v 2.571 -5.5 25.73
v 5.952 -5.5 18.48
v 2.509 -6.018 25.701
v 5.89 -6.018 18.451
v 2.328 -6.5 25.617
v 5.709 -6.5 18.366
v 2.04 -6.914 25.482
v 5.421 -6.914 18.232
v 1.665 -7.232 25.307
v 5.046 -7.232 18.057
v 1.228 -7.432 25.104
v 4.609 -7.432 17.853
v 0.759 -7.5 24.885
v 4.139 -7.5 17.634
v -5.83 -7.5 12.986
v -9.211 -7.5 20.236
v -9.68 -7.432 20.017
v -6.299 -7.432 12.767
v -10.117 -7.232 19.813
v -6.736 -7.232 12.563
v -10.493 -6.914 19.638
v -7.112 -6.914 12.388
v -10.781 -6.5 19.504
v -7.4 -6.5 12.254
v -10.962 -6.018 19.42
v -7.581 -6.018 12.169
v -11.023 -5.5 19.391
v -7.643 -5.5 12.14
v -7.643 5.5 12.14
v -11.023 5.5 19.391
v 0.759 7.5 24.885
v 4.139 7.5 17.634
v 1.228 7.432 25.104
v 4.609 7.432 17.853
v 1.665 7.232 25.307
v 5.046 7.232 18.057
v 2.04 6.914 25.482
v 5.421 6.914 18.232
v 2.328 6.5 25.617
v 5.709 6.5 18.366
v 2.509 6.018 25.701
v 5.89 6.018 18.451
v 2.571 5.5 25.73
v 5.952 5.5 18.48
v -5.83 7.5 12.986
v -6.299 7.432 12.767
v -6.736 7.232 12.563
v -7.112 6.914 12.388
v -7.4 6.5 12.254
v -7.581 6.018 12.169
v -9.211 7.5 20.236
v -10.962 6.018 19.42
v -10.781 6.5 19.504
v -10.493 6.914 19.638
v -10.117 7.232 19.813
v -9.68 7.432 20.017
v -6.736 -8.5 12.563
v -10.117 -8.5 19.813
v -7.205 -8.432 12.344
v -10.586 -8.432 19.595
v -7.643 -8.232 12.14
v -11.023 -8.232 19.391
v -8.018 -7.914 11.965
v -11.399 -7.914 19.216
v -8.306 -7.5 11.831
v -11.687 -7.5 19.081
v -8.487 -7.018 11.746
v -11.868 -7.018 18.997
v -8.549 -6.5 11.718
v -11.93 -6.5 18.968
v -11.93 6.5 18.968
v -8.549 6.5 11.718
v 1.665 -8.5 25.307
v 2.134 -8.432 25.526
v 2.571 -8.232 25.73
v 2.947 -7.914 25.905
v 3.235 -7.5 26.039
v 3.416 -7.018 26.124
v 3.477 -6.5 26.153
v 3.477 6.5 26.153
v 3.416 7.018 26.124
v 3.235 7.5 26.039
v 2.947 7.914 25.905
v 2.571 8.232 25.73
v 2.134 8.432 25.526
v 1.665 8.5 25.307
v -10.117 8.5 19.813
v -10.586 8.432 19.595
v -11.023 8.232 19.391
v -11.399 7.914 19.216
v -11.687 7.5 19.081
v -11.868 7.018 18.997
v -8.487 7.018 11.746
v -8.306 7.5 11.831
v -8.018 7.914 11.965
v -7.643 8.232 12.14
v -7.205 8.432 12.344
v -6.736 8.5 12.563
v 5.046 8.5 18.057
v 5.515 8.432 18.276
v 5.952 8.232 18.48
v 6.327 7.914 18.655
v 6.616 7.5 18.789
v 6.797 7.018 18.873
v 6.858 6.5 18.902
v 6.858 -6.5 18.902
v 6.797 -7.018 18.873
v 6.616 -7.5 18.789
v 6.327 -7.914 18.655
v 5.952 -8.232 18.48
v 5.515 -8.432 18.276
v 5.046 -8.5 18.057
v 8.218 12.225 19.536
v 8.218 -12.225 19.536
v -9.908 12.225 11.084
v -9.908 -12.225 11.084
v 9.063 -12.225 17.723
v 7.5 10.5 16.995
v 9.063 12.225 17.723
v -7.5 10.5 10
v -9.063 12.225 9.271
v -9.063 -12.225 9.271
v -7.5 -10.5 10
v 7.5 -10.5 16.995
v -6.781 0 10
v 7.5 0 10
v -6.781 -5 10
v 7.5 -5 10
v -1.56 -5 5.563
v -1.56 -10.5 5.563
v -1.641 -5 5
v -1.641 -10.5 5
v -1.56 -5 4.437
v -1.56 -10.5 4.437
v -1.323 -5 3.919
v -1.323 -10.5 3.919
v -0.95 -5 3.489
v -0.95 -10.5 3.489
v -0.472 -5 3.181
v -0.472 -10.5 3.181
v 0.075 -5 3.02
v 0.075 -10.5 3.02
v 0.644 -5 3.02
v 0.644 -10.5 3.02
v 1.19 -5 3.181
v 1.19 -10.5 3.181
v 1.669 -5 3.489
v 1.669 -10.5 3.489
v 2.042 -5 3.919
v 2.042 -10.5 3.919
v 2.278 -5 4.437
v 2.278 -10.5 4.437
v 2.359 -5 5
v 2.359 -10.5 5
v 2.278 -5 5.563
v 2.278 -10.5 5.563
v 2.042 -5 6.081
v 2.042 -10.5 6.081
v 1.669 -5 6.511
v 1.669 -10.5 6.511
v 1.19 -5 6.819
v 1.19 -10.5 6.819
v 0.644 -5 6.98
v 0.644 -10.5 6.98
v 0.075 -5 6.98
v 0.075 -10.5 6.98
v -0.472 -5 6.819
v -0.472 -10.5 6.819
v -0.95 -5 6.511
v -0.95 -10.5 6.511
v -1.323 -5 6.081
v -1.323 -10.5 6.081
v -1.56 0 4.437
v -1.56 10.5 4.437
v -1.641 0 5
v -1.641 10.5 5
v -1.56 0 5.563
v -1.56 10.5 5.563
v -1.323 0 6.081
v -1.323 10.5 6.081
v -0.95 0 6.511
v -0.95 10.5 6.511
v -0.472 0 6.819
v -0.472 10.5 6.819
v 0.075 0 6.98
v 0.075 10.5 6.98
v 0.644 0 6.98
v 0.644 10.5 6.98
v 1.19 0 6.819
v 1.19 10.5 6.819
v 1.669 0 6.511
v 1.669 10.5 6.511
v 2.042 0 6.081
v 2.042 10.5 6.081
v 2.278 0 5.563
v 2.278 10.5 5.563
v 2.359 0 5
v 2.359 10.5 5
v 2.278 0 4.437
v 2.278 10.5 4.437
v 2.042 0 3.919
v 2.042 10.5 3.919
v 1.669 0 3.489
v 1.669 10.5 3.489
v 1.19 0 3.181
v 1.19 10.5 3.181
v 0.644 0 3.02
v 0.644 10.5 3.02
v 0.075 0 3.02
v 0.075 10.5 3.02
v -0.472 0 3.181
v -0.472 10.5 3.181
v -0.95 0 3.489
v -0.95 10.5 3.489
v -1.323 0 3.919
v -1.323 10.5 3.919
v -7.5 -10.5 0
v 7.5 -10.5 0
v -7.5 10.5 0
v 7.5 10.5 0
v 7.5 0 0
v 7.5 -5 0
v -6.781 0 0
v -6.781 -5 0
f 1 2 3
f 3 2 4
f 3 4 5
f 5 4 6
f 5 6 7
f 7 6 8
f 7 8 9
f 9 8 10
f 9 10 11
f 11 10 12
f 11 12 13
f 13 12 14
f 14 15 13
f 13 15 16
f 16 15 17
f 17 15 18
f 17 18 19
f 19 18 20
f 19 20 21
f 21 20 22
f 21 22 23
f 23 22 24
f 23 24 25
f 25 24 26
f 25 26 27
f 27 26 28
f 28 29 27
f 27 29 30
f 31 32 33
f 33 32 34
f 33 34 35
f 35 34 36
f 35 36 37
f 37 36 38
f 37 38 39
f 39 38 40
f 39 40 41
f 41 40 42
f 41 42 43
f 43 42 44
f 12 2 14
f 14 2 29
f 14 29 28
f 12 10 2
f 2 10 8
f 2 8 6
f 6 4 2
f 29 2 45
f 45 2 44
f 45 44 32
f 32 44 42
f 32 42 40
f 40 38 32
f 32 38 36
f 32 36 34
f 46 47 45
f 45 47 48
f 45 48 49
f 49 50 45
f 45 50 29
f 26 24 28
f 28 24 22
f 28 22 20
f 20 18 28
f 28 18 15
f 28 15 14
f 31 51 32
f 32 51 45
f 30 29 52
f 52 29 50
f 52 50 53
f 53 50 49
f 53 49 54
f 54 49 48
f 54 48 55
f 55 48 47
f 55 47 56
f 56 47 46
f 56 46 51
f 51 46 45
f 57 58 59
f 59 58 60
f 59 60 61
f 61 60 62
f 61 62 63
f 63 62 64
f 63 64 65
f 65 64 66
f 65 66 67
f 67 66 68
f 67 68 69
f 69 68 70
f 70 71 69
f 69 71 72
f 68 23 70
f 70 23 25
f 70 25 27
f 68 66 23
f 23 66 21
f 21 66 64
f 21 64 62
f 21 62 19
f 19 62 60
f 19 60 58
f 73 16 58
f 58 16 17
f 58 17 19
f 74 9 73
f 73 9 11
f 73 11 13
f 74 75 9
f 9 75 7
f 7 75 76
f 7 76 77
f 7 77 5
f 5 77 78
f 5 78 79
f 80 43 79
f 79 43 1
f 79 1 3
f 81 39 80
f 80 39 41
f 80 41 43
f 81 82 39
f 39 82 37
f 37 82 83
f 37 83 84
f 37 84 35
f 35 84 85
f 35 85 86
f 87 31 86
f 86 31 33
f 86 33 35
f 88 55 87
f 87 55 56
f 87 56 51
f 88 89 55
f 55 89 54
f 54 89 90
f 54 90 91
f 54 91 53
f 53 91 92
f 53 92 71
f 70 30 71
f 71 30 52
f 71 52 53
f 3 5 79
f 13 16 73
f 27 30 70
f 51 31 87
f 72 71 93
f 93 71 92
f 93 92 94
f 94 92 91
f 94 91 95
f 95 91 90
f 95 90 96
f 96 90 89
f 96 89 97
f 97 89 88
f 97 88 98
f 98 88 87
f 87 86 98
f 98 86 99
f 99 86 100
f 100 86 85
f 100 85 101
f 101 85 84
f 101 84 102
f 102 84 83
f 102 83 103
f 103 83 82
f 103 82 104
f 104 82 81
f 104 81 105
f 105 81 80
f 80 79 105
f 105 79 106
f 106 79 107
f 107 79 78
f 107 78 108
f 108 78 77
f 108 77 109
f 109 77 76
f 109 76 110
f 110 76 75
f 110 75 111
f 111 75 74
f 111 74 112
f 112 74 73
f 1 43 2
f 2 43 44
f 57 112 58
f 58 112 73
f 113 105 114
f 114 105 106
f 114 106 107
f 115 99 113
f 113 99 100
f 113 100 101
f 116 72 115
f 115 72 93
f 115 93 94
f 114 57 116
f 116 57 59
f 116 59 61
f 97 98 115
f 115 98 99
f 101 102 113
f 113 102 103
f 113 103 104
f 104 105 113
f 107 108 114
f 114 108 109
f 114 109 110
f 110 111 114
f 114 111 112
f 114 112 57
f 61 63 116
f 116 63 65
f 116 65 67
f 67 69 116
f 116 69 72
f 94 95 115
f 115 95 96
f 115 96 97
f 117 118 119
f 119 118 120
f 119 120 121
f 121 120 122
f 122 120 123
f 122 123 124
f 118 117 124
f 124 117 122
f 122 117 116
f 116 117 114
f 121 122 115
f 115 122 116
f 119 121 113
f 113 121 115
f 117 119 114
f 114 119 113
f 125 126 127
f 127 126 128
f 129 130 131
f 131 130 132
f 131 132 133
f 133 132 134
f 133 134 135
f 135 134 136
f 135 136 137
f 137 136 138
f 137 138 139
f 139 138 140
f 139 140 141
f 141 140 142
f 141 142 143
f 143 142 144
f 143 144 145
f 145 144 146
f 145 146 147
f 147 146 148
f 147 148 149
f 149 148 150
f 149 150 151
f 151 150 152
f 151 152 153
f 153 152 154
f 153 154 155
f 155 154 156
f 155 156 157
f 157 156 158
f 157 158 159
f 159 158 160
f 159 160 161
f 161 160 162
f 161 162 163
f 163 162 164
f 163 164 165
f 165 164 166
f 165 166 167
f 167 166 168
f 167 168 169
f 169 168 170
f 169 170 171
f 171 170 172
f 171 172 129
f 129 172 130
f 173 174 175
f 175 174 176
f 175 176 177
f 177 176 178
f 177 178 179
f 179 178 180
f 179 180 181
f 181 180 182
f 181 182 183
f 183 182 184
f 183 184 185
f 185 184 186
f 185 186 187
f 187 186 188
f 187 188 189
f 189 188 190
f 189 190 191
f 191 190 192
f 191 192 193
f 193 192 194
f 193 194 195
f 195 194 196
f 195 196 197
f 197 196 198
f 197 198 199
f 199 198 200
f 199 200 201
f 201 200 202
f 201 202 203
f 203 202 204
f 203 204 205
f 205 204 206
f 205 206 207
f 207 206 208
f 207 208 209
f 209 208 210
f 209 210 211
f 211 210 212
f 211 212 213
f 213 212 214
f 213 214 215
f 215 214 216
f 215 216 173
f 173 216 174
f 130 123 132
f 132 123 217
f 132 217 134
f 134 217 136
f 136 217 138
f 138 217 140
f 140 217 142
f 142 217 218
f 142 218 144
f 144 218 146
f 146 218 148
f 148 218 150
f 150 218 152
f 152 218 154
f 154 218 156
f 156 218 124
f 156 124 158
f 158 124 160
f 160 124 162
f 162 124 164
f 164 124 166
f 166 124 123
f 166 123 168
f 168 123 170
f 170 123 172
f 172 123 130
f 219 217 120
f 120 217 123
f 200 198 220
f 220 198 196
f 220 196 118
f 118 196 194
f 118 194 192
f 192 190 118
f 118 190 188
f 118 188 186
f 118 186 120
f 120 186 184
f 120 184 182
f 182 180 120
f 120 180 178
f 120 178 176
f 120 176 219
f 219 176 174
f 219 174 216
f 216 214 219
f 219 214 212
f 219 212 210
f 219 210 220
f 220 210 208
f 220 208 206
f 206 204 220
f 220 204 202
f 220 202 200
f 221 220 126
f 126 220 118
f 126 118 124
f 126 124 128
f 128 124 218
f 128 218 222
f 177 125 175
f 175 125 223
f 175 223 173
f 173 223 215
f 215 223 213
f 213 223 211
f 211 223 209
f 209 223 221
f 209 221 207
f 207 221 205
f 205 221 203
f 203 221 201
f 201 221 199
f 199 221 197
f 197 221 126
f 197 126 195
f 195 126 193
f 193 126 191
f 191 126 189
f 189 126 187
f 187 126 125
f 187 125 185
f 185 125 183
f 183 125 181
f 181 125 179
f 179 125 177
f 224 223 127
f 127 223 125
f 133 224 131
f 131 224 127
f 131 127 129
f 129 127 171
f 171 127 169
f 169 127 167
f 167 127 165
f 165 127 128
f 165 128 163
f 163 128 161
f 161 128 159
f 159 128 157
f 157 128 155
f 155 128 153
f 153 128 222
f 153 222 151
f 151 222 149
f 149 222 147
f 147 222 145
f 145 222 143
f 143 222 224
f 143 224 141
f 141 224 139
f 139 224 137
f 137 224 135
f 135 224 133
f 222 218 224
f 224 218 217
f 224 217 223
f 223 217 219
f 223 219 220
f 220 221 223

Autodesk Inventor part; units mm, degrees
ref_plane "YZ Plane" through (0, 0, 0) normal (1, 0, 0) x (0, 1, 0)
ref_plane "XZ Plane" through (0, 0, 0) normal (0, 1, 0) x (-1, 0, 0)
ref_plane "XY Plane" through (0, 0, 0) normal (0, 0, 1) x (1, 0, 0)
sketch "Эскиз1" plane through (0, 0, 0) normal (0, 0, 1) x (1, 0, 0)
  line L0 (7.5, -5) -> (7.5, 0) projected
  line L1 (5.0577, -5) -> (7.5, -5) projected
  line L2 (5.0577, -5) -> (-4.3392, -5) projected
  line L3 (-6.7815, -5) -> (-4.3392, -5) projected
  line L4 (-6.7815, -5) -> (-6.7815, 0) projected
  line L5 (-6.7815, 0) -> (-4.3392, 0) projected
  line L6 (5.0577, 0) -> (-4.3392, 0) projected
  line L7 (5.0577, 0) -> (7.5, 0) projected
  line L8 (7.5, -10.5) -> (-7.5, -10.5) projected
  line L9 (7.5, 0) -> (-6.7815, 0) projected
  line L10 (7.5, 10.5) -> (7.5, 0) projected
  line L11 (-7.5, 10.5) -> (7.5, 10.5) projected
  line L12 (-7.5, -10.5) -> (-7.5, 10.5) projected
  line L13 (7.5, -10.5) -> (-7.5, -10.5) projected
  line L14 (7.5, -5) -> (7.5, -10.5) projected
  line L15 (7.5, -5) -> (-6.7815, -5) projected
  line L16 (-6.7815, -5) -> (-6.7815, 0) projected
  point P0 (0, 0)
extrude "Выдавливание1" add sketch "Эскиз1" along normal blind 10 contours L14 L8 L12 L11 L10 L7 L6 L5 L4 L3 L2 L1
sketch "Эскиз2" plane through (-7.5, 10.5, 0) normal (0, 1, 0) x (1, 0, 0)
  circle A0 centre (7.8593, -5) radius 2 projected
  point P0 (7.5, 0)
extrude "Выдавливание2" cut sketch "Эскиз2" against normal through all
sketch "Эскиз3" plane through (-7.5, 10.5, 0) normal (0, 1, 0) x (1, 0, 0)
  line L0 (15, -10) -> (0, -10) projected
  line L1 (15, -10) -> (15, -16.9946)
  line L2 (15, -16.9946) -> (0, -10)
  point P0 (7.5, 0)
  dimension "d5" = 25
extrude "Выдавливание3" add sketch "Эскиз3" against normal up to surface (21 mm away)
sketch "Эскиз4" plane through (7.5, -10.5, 16.9946) normal (-0.4226183, 0, 0.9063078) x (0.9063078, 0, 0.4226183)
  line L0 (-16.5507, 0) -> (0, 0) projected
  line L1 (0, 21) -> (0, 0) projected
  line L2 (-16.5507, 21) -> (0, 21) projected
  line L3 (-16.5507, 21) -> (-16.5507, 0) projected
  line L4 (-18.2753, -1.7247) -> (1.7247, -1.7247)
  line L5 (1.7247, -1.7247) -> (1.7247, 22.7247)
  line L6 (1.7247, 22.7247) -> (-18.2753, 22.7247)
  line L7 (-18.2753, 22.7247) -> (-18.2753, -1.7247)
  point P0 (-13.9795, 10.5)
  dimension "d8" = 20
extrude "Выдавливание4" add sketch "Эскиз4" along normal blind 2 contours L3 L2 L1 L0 | L7 L6 L5 L4
sketch "Эскиз5" plane through (6.6548, -10.5, 18.8072) normal (-0.4226183, 0, 0.9063078) x (0.9063078, 0, 0.4226183)
  line L0 (0.2247, 19) -> (-16.7753, 19)
  line L1 (-16.7753, 19) -> (-16.7753, 2)
  line L2 (-16.7753, 2) -> (0.2247, 2)
  line L3 (0.2247, 2) -> (0.2247, 19)
  line L4 (1.7247, -1.7247) -> (1.7247, 22.7247) projected
  line L5 (-18.2753, -1.7247) -> (1.7247, -1.7247) projected
  line L6 (-0.7753, 18) -> (-15.7753, 18)
  line L7 (-15.7753, 18) -> (-15.7753, 3)
  line L8 (-15.7753, 3) -> (-0.7753, 3)
  line L9 (-0.7753, 3) -> (-0.7753, 18)
  point P0 (-13.9795, 10.5)
  point P1 (0.2247, 10.5)
  point P2 (1.7247, 10.5)
  point P3 (-8.2753, 2)
  point P4 (-8.2753, -1.7247)
  dimension "d11" = 17
  dimension "d12" = 1
extrude "Выдавливание5" add sketch "Эскиз5" along normal blind 8
fillet "Сопряжение1" radius 2 8 edges at (5.1679, -8.5, 22.5274) (5.1679, 8.5, 22.5274) (-10.2393, 8.5, 15.3429) (-10.2393, -8.5, 15.3429) (-9.333, 7.5, 15.7655) (4.2616, 7.5, 22.1048) (-9.333, -7.5, 15.7655) (4.2616, -7.5, 22.1048)
sketch "Эскиз6" plane through (7.5, 0, 0) normal (1, 0, 0) x (0, 0, -1)
  point P0 (0, 0)
equation "\"degg\" = 65deg"
properties part number "base_65"
